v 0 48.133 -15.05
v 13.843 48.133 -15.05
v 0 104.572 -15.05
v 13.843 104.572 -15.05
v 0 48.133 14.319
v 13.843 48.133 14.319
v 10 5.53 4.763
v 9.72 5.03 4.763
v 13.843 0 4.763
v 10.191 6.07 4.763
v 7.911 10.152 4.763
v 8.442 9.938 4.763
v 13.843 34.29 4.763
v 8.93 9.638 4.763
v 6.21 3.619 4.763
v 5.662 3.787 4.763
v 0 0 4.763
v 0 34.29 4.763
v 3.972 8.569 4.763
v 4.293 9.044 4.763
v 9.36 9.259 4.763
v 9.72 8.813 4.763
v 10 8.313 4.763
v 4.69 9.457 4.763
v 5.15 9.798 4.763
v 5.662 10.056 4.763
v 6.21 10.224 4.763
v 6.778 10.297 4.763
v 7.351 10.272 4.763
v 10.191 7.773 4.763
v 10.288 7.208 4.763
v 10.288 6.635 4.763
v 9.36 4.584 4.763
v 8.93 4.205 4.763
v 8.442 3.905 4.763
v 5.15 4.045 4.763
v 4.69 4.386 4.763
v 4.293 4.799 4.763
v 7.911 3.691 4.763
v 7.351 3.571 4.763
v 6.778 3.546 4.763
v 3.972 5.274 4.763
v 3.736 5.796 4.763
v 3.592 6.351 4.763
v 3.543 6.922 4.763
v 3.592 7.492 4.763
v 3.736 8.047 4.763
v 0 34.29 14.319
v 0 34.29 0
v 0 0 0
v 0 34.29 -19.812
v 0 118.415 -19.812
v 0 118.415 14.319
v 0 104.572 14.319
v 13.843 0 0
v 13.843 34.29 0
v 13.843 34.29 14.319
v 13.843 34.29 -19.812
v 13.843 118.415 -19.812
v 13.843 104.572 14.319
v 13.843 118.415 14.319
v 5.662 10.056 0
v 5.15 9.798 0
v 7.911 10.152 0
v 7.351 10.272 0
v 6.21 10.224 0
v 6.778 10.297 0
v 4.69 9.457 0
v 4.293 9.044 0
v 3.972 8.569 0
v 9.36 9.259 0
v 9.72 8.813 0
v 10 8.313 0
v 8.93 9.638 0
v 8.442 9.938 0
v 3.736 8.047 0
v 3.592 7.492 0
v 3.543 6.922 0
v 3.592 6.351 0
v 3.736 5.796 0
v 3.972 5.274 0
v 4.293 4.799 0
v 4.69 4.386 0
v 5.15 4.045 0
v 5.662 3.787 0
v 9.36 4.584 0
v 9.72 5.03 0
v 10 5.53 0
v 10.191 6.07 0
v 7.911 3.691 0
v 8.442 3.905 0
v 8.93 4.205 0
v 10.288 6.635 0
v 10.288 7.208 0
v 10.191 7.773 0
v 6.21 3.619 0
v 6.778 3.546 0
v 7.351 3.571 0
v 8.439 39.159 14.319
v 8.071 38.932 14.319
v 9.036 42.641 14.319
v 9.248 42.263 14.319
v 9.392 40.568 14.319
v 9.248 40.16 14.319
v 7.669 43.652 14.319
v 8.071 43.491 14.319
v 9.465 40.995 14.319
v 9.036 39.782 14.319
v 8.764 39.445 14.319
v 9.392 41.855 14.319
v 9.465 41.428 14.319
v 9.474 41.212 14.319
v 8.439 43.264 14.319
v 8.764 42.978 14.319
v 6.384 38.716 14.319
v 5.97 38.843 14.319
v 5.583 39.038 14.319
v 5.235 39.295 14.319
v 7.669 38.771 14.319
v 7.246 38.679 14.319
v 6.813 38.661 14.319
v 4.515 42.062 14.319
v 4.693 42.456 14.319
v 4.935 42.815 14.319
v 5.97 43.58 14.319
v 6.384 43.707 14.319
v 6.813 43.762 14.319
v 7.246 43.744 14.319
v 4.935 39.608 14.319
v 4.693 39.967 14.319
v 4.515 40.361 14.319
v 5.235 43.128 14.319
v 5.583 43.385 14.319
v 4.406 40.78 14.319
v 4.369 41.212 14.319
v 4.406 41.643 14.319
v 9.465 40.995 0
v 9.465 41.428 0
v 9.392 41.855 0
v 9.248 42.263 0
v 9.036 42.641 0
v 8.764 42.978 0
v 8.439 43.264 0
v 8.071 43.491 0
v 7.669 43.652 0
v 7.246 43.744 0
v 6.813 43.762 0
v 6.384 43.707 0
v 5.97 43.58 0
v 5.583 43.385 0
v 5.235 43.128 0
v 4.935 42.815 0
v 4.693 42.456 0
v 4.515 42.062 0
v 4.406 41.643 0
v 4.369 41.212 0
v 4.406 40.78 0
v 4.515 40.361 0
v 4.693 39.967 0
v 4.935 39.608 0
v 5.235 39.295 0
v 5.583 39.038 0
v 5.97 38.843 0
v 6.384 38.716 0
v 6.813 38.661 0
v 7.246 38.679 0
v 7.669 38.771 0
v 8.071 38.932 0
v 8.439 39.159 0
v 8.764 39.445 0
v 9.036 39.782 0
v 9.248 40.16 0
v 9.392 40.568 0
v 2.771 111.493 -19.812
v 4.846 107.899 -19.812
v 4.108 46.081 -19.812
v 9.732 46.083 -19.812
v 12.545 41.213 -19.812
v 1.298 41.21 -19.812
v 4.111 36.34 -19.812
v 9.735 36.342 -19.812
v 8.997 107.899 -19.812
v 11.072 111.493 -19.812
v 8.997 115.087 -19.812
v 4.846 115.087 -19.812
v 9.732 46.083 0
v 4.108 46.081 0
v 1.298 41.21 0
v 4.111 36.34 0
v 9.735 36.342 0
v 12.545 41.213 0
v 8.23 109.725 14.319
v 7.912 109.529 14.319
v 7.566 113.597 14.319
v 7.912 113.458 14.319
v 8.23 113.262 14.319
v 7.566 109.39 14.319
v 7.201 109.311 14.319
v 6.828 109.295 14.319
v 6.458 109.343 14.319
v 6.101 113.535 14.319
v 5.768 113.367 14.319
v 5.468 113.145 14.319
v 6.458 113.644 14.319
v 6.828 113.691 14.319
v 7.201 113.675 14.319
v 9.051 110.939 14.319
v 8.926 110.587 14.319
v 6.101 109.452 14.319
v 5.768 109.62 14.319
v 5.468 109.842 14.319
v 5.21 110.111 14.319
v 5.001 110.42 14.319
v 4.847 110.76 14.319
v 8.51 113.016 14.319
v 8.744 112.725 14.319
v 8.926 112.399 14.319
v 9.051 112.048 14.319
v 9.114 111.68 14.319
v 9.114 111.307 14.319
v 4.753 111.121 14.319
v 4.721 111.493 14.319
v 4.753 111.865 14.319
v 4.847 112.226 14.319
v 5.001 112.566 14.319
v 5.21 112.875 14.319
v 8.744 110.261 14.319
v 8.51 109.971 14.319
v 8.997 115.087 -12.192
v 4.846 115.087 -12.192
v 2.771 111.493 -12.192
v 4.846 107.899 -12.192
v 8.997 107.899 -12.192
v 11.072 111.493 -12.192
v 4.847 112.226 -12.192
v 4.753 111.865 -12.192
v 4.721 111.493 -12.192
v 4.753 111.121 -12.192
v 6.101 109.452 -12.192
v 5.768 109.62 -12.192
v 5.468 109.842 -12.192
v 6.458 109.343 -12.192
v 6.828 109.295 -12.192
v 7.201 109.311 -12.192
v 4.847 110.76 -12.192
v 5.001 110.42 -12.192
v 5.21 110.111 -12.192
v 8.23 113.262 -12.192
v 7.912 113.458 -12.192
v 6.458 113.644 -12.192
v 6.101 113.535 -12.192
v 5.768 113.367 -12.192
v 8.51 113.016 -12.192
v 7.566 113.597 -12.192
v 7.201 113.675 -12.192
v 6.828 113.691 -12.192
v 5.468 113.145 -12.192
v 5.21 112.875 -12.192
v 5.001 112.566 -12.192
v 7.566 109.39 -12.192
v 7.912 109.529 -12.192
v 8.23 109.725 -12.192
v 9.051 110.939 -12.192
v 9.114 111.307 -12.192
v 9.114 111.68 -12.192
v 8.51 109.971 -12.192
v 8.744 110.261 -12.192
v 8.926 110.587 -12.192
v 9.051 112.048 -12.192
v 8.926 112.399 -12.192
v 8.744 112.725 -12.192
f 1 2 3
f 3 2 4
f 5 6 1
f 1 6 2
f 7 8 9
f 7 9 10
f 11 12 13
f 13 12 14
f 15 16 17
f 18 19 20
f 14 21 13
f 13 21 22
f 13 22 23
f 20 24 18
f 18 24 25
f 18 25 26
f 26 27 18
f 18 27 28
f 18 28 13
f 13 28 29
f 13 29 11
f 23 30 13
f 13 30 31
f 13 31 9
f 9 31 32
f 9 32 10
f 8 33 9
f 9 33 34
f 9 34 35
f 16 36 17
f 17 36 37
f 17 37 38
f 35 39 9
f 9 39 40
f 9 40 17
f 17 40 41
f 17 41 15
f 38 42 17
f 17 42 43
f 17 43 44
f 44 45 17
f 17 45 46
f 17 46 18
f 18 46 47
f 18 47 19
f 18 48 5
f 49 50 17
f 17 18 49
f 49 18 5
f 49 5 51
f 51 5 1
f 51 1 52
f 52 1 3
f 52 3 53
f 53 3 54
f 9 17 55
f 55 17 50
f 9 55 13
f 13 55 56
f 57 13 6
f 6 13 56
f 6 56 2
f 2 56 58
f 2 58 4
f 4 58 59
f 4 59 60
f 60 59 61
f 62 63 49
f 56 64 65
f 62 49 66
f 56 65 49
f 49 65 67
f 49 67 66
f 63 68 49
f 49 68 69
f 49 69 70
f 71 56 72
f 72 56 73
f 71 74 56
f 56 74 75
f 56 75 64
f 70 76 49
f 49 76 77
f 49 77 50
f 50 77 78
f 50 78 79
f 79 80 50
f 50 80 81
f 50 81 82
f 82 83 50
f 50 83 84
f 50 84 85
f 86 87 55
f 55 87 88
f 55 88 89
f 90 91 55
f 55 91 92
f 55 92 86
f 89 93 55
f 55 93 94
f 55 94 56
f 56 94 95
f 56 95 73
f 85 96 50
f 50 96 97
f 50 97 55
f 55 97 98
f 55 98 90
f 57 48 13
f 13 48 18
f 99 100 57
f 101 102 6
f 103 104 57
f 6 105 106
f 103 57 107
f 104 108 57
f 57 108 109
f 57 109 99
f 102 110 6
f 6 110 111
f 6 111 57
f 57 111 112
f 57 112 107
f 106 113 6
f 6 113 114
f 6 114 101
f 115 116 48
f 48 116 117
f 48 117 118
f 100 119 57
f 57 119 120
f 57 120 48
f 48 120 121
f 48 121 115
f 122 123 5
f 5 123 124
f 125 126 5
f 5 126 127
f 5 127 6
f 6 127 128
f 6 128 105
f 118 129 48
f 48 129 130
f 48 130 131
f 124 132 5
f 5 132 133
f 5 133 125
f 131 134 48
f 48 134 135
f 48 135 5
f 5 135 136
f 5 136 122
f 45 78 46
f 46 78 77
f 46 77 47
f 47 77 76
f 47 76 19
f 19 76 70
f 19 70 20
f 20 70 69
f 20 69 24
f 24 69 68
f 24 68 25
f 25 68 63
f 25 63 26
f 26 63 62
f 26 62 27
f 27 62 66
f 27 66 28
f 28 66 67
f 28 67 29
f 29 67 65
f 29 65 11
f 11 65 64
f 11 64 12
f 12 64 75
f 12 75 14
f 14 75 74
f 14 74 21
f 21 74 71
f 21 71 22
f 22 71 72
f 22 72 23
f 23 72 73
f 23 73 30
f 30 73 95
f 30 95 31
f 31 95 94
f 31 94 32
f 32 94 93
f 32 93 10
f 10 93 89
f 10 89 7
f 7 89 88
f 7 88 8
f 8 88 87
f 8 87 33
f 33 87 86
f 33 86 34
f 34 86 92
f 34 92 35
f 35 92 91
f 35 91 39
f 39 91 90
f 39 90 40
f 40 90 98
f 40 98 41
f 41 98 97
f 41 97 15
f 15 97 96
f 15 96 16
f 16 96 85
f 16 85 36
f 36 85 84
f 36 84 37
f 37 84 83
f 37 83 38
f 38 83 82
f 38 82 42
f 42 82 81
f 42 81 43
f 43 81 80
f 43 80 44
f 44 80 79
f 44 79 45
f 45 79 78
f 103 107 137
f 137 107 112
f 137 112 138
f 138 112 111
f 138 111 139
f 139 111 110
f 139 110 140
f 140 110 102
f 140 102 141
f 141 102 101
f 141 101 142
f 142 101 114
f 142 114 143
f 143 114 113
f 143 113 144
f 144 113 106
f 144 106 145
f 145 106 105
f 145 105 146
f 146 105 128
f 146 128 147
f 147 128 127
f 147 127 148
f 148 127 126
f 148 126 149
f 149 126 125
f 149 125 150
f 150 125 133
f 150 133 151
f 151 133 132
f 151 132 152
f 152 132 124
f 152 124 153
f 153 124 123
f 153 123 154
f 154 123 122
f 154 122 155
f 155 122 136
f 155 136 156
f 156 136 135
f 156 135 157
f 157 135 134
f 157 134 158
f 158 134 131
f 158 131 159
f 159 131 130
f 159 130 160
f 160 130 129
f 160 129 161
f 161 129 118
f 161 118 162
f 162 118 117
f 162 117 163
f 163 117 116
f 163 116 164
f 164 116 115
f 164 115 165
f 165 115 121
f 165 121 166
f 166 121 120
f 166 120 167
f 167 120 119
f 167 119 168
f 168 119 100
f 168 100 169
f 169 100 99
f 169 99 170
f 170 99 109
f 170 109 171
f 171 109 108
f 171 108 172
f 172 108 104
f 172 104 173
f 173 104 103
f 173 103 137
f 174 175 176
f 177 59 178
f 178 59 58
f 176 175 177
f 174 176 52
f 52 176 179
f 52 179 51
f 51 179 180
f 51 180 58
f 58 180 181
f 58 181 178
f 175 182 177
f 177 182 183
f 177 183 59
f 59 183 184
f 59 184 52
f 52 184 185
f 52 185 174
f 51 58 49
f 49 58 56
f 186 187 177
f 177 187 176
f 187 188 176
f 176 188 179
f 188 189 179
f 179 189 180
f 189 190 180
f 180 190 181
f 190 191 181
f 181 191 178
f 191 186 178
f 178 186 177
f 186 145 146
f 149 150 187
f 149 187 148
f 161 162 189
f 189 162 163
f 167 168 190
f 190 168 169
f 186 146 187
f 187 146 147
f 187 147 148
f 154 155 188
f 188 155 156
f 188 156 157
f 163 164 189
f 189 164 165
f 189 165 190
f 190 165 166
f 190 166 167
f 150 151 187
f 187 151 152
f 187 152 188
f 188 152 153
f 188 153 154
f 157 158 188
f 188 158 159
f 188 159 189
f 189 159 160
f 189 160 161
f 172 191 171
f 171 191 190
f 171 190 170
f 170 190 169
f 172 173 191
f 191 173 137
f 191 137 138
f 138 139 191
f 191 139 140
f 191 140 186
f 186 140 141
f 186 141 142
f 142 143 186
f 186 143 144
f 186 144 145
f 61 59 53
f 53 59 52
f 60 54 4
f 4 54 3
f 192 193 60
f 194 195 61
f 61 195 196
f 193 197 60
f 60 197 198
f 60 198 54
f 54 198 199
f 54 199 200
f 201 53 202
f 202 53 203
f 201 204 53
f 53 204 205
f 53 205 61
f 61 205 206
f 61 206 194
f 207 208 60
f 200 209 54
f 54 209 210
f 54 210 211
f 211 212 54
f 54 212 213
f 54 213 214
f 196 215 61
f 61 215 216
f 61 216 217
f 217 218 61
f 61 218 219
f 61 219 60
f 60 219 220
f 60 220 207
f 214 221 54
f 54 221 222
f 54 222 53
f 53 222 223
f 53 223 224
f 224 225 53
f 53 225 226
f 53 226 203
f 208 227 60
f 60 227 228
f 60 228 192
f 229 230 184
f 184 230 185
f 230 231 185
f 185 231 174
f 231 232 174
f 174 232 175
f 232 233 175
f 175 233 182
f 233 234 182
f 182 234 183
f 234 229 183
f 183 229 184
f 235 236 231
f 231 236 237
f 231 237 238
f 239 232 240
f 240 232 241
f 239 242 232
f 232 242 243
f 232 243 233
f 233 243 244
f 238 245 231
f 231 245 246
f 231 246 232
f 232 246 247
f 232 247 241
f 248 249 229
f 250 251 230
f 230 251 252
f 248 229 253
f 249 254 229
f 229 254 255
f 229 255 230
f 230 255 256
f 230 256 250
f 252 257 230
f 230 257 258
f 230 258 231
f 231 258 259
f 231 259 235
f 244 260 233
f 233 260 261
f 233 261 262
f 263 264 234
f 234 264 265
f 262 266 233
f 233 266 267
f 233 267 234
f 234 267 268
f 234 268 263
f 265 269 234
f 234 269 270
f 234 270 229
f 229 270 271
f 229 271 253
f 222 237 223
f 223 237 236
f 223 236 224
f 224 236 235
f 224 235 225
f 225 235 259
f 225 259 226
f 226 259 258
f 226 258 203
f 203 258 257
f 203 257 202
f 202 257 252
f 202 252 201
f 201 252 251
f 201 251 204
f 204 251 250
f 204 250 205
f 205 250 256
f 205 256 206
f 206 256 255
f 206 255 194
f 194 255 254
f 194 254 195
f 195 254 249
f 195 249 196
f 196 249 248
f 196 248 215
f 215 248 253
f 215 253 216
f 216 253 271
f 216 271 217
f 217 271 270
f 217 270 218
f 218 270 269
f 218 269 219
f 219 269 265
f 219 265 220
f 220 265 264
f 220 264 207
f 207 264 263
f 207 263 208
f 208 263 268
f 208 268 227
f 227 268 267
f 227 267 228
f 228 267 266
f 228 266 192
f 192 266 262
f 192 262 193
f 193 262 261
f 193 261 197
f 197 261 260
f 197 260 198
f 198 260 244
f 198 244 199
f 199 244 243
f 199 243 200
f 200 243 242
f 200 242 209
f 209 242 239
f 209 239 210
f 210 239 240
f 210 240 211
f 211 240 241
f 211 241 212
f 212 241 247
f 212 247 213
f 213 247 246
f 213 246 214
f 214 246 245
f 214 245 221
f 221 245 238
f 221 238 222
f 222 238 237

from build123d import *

# Parameters (mm, degrees)
SKETCH1_W           = 13.843
SKETCH1_H           = 48.133
BOSS_EXTRUDE1_DEPTH = 4.7625
SKETCH2_W           = 13.843
SKETCH2_H           = 13.843
BOSS_EXTRUDE2_DEPTH = 9.55675
SKETCH3_R           = 3.3782
CUT_EXTRUDE1_DEPTH  = 9.55675
SKETCH4_R           = 2.5527
CUT_EXTRUDE2_DEPTH  = 16.92275
SKETCH5_W           = 13.843
SKETCH5_H           = 13.843
BOSS_EXTRUDE3_DEPTH = 19.812
CUT_EXTRUDE3_DEPTH  = 19.812
SKETCH7_W           = 13.843
SKETCH7_H           = 4.7625
BOSS_EXTRUDE4_DEPTH = 70.2818
SKETCH8_W           = 13.843
SKETCH8_H           = 13.843
BOSS_EXTRUDE5_DEPTH = 29.36875
CUT_EXTRUDE4_DEPTH  = 7.62
SKETCH10_R          = 2.2
CUT_EXTRUDE5_DEPTH  = 27.51125


with BuildPart() as part:
    # Sketch1 → Boss-Extrude1 (new body)
    with BuildSketch(Plane.XY):
        with Locations((6.9215, 24.0665)):
            Rectangle(SKETCH1_W, SKETCH1_H)
    extrude(amount=BOSS_EXTRUDE1_DEPTH)

    # Sketch2 → Boss-Extrude2 (add)
    with BuildSketch(Plane.XY.offset(4.7625)):
        with Locations((6.9215, 41.2115)):
            Rectangle(SKETCH2_W, SKETCH2_H)
    extrude(amount=BOSS_EXTRUDE2_DEPTH)

    # Sketch3 → Cut-Extrude1 (cut)
    with BuildSketch(Plane(origin=(0, 0, 0), x_dir=(-1, 0, 0), z_dir=(0, 0, -1))):
        with Locations((-6.9215, 6.9215)):
            Circle(SKETCH3_R)
    extrude(amount=-CUT_EXTRUDE1_DEPTH, mode=Mode.SUBTRACT)

    # Sketch4 → Cut-Extrude2 (cut)
    with BuildSketch(Plane(origin=(0, 0, 0), x_dir=(-1, 0, 0), z_dir=(0, 0, -1))):
        with Locations((-6.9215, 41.2115)):
            Circle(SKETCH4_R)
    extrude(amount=-CUT_EXTRUDE2_DEPTH, mode=Mode.SUBTRACT)

    # Sketch5 → Boss-Extrude3 (add)
    with BuildSketch(Plane(origin=(0, 0, 0), x_dir=(-1, 0, 0), z_dir=(0, 0, -1))):
        with Locations((-6.9215, 41.2115)):
            Rectangle(SKETCH5_W, SKETCH5_H)
    extrude(amount=BOSS_EXTRUDE3_DEPTH)

    # Sketch6 → Cut-Extrude3 (cut)
    with BuildSketch(Plane(origin=(0, 0, -19.812), x_dir=(-1, 0, 0), z_dir=(0, 0, -1))):
        Polygon((-9.731894722, 46.082850851), (-12.545410948, 41.213302202), (-9.735016227, 36.341951351), (-4.111105278, 36.340149149), (-1.297589052, 41.209697798), (-4.107983773, 46.081048649), align=None)
    extrude(amount=-CUT_EXTRUDE3_DEPTH, mode=Mode.SUBTRACT)

    # Sketch7 → Boss-Extrude4 (add)
    with BuildSketch(Plane(origin=(0, 48.133, 0), x_dir=(1, 0, 0), z_dir=(0, 1, 0))):
        with Locations((6.9215, 17.43075)):
            Rectangle(SKETCH7_W, SKETCH7_H)
    extrude(amount=BOSS_EXTRUDE4_DEPTH)

    # Sketch8 → Boss-Extrude5 (add)
    with BuildSketch(Plane.XY.offset(-15.0495)):
        with Locations((6.9215, 111.4933)):
            Rectangle(SKETCH8_W, SKETCH8_H)
    extrude(amount=BOSS_EXTRUDE5_DEPTH)

    # Sketch9 → Cut-Extrude4 (cut)
    with BuildSketch(Plane(origin=(0, 0, -19.812), x_dir=(-1, 0, 0), z_dir=(0, 0, -1))):
        Polygon((-8.996554602, 115.0874), (-11.071609205, 111.4933), (-8.996554602, 107.8992), (-4.846445398, 107.8992), (-2.771390795, 111.4933), (-4.846445398, 115.0874), align=None)
    extrude(amount=-CUT_EXTRUDE4_DEPTH, mode=Mode.SUBTRACT)

    # Sketch10 → Cut-Extrude5 (cut, through all)
    with BuildSketch(Plane(origin=(0, 0, -12.192), x_dir=(-1, 0, 0), z_dir=(0, 0, -1))):
        with Locations((-6.9215, 111.4933)):
            Circle(SKETCH10_R)
    extrude(amount=-CUT_EXTRUDE5_DEPTH, mode=Mode.SUBTRACT)


solid = part.part
